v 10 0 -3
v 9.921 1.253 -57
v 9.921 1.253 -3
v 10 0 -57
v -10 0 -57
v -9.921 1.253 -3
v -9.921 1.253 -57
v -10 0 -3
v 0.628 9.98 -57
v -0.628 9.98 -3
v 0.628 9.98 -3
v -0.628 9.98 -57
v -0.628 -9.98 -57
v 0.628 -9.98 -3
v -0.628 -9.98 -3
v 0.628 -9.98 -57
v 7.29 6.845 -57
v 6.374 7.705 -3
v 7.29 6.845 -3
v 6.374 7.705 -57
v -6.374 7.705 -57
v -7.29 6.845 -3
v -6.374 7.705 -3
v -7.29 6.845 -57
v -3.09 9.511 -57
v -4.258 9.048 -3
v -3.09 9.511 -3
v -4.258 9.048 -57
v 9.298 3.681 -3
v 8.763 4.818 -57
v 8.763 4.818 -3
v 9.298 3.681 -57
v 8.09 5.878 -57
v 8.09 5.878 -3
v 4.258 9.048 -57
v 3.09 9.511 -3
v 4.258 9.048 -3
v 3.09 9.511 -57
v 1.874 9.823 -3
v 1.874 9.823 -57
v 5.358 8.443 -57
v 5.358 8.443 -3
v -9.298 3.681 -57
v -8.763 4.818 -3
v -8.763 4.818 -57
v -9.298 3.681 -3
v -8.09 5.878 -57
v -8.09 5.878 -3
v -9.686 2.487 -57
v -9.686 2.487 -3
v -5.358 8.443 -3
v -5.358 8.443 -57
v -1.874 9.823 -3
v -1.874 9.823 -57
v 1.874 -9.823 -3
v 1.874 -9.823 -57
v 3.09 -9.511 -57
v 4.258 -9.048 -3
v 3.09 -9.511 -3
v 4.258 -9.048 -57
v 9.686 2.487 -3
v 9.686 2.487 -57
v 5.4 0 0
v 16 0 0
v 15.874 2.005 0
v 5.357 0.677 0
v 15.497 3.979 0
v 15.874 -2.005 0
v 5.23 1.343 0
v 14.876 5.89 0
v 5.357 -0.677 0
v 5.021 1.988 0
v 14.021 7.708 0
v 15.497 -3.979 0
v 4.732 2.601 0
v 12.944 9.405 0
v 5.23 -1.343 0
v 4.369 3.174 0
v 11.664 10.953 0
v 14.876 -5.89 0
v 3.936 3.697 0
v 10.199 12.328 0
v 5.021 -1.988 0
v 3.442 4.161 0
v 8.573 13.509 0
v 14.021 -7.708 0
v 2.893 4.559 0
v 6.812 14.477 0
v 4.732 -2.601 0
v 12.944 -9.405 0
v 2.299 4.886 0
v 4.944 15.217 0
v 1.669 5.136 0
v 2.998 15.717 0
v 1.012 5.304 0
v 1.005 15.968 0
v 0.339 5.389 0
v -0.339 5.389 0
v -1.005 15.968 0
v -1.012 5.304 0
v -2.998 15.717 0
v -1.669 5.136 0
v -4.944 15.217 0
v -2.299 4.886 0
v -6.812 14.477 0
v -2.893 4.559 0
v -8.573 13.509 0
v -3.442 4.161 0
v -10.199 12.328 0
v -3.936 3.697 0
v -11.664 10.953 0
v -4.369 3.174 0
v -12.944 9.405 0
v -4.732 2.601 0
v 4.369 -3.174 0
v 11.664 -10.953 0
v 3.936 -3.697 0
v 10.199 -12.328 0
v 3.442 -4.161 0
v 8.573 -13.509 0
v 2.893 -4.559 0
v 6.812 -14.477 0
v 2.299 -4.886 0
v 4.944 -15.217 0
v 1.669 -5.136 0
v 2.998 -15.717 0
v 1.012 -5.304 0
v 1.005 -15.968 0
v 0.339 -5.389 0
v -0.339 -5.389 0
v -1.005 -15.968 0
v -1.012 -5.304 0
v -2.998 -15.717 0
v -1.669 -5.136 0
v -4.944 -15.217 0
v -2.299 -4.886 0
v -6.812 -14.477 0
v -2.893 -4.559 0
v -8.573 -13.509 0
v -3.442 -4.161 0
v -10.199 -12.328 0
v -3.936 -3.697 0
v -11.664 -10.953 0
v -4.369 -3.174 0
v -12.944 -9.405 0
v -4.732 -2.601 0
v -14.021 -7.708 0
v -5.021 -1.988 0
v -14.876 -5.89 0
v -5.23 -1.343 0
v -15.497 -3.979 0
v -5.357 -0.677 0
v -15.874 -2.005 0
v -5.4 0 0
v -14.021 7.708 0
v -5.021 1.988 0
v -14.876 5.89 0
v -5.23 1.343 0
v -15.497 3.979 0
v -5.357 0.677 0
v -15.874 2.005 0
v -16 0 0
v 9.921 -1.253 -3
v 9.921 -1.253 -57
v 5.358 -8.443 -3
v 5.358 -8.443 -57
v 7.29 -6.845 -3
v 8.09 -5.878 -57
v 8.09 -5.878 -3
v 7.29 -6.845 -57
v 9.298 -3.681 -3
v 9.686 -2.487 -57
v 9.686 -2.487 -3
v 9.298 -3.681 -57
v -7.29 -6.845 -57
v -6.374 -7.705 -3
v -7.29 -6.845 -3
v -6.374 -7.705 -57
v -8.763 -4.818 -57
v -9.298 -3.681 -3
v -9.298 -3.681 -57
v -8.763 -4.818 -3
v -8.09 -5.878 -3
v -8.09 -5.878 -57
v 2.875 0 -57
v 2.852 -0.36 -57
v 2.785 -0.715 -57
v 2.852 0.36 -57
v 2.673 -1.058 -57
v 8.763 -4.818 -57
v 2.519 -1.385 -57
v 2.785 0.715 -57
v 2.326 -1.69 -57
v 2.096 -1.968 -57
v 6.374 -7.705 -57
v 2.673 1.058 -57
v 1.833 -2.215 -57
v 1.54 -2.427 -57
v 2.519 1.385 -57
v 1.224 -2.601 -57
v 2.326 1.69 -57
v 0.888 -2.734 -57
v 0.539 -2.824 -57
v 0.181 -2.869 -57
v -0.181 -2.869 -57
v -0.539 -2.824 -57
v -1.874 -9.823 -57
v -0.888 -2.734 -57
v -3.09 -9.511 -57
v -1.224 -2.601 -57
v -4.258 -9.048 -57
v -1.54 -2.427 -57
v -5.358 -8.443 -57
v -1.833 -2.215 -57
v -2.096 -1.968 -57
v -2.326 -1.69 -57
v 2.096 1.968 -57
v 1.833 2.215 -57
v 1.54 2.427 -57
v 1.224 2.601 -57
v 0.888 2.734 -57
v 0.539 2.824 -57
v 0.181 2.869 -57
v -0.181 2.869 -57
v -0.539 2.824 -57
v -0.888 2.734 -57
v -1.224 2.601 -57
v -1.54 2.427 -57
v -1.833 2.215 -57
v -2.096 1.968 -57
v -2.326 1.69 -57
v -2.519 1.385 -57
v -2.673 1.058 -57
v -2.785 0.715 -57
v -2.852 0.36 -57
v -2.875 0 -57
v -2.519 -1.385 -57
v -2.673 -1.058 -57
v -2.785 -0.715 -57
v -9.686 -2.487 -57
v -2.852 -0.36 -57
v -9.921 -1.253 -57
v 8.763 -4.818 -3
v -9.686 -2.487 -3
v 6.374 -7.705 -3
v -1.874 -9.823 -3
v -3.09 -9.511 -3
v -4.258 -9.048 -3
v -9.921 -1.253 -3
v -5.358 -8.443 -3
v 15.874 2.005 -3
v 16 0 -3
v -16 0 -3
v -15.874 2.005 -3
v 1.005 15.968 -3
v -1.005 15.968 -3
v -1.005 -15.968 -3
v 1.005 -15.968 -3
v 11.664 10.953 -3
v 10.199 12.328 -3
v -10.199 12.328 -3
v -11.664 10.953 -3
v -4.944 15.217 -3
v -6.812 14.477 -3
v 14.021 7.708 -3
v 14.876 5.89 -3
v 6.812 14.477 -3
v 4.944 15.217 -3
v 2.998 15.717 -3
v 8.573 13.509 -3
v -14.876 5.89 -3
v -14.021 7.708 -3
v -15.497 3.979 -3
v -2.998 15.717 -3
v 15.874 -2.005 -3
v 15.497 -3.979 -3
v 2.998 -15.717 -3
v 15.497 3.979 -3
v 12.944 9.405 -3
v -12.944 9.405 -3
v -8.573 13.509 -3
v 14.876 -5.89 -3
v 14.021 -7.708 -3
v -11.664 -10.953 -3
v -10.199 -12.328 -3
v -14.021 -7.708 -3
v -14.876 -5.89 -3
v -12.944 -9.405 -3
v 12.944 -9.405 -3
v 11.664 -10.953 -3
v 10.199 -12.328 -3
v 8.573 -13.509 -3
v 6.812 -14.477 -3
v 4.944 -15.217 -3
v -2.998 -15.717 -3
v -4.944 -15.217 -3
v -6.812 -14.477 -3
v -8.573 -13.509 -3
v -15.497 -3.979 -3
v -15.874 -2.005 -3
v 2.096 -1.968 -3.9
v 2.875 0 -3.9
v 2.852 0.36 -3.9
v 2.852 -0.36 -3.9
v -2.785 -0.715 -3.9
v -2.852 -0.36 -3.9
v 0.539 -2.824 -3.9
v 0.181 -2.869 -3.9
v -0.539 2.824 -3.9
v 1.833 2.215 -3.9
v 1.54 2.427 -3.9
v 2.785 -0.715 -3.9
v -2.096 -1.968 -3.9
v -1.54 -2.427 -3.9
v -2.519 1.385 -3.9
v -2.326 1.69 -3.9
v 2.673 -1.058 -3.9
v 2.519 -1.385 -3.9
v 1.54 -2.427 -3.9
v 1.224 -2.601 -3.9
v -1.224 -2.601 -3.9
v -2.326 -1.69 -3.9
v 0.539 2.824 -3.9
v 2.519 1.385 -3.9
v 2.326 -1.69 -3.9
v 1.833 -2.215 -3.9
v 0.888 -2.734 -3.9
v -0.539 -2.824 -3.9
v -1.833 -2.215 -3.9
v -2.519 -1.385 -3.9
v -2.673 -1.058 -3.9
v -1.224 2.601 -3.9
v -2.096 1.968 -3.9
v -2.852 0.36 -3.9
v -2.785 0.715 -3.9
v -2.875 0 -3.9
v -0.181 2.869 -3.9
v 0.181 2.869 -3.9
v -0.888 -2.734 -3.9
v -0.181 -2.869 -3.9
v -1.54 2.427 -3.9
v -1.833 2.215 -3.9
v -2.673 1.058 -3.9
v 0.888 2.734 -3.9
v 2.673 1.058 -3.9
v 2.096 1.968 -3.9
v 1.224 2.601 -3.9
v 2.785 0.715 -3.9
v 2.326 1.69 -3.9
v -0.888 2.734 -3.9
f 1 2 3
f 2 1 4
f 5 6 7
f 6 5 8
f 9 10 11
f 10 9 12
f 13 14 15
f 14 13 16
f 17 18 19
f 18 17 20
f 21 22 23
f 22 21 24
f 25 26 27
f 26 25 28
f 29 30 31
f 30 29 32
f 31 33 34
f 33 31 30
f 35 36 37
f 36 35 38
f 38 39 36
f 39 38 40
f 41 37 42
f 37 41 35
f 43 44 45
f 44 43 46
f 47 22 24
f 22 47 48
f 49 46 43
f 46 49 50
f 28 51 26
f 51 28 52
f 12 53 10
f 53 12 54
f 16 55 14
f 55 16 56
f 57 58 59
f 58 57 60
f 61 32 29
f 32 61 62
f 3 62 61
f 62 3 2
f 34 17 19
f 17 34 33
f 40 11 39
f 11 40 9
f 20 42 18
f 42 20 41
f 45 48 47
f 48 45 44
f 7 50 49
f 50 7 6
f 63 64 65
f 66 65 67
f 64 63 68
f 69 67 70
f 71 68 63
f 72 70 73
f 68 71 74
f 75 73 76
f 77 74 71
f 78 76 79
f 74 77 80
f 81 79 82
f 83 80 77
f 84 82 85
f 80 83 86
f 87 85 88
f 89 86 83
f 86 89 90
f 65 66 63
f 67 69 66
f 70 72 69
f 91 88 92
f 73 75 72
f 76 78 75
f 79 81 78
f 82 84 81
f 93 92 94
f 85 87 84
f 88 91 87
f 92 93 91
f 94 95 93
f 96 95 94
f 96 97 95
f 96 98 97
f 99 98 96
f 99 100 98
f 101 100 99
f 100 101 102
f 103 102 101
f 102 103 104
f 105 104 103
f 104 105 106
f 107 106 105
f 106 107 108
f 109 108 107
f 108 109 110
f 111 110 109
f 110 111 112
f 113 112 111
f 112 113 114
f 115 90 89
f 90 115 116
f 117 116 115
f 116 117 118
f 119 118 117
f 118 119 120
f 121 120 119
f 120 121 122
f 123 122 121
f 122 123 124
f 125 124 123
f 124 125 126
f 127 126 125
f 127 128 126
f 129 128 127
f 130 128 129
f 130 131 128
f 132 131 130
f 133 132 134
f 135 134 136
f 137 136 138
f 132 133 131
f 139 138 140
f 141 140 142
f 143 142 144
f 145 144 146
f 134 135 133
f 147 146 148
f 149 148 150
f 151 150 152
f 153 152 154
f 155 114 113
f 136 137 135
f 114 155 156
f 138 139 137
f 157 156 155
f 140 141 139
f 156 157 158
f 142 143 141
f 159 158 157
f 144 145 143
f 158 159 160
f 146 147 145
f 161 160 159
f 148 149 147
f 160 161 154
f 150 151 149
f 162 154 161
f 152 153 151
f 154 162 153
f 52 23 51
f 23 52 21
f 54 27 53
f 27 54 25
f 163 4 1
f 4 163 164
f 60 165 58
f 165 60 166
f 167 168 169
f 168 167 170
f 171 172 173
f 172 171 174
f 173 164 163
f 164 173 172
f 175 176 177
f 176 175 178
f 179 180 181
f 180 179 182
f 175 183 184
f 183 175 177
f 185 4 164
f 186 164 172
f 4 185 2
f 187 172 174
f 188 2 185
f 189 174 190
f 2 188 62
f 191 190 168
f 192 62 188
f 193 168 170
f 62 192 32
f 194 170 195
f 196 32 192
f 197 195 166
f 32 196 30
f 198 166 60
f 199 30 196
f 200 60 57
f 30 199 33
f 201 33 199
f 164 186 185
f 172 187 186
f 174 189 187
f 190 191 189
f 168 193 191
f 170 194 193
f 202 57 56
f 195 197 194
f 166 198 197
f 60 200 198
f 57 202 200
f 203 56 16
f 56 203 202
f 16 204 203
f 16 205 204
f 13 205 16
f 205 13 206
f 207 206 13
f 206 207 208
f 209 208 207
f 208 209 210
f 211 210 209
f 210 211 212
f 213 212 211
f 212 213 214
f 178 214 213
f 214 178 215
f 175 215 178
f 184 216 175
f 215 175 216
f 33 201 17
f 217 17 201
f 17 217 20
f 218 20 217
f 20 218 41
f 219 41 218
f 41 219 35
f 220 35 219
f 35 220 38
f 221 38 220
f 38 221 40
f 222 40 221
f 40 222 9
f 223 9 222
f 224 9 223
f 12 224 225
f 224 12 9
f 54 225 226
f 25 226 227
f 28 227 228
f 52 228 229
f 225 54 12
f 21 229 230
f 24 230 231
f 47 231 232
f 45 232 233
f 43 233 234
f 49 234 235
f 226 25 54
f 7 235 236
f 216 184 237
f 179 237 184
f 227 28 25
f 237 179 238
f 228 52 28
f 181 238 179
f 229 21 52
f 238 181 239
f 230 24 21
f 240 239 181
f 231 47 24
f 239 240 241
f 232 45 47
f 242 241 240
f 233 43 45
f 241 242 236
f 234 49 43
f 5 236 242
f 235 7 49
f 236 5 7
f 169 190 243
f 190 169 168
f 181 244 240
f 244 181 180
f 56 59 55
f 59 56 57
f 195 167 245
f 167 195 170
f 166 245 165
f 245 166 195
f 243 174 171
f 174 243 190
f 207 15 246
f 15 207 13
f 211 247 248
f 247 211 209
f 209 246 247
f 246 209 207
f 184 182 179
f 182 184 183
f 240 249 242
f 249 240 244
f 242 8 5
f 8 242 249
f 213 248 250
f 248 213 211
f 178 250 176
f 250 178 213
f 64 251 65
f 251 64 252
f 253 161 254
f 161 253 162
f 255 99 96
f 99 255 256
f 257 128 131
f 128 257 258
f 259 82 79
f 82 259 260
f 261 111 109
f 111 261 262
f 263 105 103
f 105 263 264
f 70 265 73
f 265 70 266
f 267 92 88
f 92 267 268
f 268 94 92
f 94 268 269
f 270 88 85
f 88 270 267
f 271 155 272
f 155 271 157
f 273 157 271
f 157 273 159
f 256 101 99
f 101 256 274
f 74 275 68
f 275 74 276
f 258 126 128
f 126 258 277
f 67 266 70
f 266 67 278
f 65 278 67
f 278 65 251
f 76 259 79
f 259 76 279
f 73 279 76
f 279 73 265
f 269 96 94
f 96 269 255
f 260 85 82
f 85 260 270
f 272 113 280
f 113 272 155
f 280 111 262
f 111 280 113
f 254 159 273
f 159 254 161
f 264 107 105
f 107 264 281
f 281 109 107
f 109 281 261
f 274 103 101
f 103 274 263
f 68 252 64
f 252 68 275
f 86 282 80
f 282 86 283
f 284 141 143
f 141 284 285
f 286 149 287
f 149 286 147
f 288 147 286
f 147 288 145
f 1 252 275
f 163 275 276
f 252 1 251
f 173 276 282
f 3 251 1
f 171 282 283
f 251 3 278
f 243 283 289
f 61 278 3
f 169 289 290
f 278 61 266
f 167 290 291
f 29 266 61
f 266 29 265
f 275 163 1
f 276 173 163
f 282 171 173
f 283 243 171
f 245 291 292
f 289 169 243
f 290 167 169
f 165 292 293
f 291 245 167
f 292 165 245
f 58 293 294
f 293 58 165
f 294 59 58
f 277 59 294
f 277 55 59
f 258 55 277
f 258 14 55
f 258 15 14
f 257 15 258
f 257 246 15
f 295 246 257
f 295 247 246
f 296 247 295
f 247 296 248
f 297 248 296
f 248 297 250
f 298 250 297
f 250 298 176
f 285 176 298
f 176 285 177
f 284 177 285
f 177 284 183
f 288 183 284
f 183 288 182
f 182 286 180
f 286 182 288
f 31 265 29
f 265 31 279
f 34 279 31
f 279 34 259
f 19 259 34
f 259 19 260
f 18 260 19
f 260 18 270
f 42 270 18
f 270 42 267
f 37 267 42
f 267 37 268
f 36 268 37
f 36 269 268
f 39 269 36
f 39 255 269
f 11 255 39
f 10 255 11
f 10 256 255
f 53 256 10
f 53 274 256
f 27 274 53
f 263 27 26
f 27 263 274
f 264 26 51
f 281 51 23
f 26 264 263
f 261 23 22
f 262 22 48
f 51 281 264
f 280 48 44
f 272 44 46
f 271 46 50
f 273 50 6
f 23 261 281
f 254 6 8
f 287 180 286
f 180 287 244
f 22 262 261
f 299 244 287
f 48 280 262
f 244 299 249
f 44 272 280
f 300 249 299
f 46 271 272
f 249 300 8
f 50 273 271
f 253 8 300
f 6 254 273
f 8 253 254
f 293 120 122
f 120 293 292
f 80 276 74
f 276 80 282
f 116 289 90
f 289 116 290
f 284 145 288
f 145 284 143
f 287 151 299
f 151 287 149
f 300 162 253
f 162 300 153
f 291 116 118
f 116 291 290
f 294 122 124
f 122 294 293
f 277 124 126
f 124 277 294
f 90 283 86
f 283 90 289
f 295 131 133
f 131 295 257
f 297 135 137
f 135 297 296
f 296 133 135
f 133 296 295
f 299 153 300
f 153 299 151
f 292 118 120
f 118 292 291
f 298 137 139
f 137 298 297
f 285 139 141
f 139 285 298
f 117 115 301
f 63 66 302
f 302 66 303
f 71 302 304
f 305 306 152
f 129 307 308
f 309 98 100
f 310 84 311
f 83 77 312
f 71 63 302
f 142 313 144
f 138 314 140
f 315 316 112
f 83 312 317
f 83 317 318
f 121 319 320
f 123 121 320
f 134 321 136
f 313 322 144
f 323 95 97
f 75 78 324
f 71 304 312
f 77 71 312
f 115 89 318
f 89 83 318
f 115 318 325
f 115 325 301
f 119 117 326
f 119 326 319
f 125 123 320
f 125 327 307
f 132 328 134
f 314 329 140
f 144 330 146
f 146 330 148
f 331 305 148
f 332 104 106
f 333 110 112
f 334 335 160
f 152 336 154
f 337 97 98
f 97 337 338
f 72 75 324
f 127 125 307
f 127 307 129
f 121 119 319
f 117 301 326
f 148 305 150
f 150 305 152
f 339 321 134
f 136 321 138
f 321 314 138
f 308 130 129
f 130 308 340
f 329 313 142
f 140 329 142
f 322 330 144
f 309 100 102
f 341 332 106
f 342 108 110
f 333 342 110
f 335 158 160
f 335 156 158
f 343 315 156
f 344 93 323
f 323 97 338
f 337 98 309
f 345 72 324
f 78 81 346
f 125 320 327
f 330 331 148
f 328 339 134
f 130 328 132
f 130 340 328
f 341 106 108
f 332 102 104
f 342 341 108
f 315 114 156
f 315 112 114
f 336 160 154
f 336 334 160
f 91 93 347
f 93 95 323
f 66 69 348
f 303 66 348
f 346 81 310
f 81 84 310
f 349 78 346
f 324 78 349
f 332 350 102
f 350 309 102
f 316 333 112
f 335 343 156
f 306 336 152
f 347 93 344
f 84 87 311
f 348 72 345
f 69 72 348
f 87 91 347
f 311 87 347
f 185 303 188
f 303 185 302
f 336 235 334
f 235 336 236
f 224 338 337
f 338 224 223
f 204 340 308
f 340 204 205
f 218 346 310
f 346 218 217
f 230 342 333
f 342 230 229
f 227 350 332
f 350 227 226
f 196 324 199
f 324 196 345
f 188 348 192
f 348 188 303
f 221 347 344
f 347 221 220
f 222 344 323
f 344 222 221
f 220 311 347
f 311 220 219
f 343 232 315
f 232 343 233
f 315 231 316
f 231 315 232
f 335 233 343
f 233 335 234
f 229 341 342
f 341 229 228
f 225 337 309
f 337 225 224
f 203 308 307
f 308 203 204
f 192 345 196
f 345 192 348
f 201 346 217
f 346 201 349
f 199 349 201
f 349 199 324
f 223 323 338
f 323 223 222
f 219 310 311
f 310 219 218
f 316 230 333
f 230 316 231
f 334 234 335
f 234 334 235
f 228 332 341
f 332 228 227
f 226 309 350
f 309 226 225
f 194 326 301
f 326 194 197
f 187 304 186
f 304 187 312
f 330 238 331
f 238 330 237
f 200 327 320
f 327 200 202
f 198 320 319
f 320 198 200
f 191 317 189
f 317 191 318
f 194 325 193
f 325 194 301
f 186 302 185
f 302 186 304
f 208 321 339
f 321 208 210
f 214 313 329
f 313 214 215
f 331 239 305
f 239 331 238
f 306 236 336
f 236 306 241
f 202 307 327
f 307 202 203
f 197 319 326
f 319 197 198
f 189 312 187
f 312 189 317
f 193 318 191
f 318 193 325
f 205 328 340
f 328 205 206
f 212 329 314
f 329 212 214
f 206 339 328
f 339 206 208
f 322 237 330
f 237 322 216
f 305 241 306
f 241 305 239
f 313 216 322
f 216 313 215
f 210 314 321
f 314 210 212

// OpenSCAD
$fn = 50;


difference() {
	union() {
		translate(v = [0, 0, -57.0000000000]) {
			cylinder(h = 57, r = 10.0000000000);
		}
		translate(v = [0, 0, -3.0000000000]) {
			cylinder(h = 3, r = 16.0000000000);
		}
	}
	union() {
		translate(v = [0, 0, 0]) {
			rotate(a = [0, 0, 0]) {
				difference() {
					union() {
						#translate(v = [0, 0, -57.0000000000]) {
							cylinder(h = 57, r = 2.6000000000);
						}
						#translate(v = [0, 0, -3.9000000000]) {
							cylinder(h = 3.9000000000, r1 = 2.8750000000, r2 = 5.4000000000);
						}
						#translate(v = [0, 0, -57.0000000000]) {
							cylinder(h = 57, r = 2.8750000000);
						}
						#translate(v = [0, 0, -57.0000000000]) {
							cylinder(h = 57, r = 2.6000000000);
						}
					}
					union();
				}
			}
		}
	}
}
